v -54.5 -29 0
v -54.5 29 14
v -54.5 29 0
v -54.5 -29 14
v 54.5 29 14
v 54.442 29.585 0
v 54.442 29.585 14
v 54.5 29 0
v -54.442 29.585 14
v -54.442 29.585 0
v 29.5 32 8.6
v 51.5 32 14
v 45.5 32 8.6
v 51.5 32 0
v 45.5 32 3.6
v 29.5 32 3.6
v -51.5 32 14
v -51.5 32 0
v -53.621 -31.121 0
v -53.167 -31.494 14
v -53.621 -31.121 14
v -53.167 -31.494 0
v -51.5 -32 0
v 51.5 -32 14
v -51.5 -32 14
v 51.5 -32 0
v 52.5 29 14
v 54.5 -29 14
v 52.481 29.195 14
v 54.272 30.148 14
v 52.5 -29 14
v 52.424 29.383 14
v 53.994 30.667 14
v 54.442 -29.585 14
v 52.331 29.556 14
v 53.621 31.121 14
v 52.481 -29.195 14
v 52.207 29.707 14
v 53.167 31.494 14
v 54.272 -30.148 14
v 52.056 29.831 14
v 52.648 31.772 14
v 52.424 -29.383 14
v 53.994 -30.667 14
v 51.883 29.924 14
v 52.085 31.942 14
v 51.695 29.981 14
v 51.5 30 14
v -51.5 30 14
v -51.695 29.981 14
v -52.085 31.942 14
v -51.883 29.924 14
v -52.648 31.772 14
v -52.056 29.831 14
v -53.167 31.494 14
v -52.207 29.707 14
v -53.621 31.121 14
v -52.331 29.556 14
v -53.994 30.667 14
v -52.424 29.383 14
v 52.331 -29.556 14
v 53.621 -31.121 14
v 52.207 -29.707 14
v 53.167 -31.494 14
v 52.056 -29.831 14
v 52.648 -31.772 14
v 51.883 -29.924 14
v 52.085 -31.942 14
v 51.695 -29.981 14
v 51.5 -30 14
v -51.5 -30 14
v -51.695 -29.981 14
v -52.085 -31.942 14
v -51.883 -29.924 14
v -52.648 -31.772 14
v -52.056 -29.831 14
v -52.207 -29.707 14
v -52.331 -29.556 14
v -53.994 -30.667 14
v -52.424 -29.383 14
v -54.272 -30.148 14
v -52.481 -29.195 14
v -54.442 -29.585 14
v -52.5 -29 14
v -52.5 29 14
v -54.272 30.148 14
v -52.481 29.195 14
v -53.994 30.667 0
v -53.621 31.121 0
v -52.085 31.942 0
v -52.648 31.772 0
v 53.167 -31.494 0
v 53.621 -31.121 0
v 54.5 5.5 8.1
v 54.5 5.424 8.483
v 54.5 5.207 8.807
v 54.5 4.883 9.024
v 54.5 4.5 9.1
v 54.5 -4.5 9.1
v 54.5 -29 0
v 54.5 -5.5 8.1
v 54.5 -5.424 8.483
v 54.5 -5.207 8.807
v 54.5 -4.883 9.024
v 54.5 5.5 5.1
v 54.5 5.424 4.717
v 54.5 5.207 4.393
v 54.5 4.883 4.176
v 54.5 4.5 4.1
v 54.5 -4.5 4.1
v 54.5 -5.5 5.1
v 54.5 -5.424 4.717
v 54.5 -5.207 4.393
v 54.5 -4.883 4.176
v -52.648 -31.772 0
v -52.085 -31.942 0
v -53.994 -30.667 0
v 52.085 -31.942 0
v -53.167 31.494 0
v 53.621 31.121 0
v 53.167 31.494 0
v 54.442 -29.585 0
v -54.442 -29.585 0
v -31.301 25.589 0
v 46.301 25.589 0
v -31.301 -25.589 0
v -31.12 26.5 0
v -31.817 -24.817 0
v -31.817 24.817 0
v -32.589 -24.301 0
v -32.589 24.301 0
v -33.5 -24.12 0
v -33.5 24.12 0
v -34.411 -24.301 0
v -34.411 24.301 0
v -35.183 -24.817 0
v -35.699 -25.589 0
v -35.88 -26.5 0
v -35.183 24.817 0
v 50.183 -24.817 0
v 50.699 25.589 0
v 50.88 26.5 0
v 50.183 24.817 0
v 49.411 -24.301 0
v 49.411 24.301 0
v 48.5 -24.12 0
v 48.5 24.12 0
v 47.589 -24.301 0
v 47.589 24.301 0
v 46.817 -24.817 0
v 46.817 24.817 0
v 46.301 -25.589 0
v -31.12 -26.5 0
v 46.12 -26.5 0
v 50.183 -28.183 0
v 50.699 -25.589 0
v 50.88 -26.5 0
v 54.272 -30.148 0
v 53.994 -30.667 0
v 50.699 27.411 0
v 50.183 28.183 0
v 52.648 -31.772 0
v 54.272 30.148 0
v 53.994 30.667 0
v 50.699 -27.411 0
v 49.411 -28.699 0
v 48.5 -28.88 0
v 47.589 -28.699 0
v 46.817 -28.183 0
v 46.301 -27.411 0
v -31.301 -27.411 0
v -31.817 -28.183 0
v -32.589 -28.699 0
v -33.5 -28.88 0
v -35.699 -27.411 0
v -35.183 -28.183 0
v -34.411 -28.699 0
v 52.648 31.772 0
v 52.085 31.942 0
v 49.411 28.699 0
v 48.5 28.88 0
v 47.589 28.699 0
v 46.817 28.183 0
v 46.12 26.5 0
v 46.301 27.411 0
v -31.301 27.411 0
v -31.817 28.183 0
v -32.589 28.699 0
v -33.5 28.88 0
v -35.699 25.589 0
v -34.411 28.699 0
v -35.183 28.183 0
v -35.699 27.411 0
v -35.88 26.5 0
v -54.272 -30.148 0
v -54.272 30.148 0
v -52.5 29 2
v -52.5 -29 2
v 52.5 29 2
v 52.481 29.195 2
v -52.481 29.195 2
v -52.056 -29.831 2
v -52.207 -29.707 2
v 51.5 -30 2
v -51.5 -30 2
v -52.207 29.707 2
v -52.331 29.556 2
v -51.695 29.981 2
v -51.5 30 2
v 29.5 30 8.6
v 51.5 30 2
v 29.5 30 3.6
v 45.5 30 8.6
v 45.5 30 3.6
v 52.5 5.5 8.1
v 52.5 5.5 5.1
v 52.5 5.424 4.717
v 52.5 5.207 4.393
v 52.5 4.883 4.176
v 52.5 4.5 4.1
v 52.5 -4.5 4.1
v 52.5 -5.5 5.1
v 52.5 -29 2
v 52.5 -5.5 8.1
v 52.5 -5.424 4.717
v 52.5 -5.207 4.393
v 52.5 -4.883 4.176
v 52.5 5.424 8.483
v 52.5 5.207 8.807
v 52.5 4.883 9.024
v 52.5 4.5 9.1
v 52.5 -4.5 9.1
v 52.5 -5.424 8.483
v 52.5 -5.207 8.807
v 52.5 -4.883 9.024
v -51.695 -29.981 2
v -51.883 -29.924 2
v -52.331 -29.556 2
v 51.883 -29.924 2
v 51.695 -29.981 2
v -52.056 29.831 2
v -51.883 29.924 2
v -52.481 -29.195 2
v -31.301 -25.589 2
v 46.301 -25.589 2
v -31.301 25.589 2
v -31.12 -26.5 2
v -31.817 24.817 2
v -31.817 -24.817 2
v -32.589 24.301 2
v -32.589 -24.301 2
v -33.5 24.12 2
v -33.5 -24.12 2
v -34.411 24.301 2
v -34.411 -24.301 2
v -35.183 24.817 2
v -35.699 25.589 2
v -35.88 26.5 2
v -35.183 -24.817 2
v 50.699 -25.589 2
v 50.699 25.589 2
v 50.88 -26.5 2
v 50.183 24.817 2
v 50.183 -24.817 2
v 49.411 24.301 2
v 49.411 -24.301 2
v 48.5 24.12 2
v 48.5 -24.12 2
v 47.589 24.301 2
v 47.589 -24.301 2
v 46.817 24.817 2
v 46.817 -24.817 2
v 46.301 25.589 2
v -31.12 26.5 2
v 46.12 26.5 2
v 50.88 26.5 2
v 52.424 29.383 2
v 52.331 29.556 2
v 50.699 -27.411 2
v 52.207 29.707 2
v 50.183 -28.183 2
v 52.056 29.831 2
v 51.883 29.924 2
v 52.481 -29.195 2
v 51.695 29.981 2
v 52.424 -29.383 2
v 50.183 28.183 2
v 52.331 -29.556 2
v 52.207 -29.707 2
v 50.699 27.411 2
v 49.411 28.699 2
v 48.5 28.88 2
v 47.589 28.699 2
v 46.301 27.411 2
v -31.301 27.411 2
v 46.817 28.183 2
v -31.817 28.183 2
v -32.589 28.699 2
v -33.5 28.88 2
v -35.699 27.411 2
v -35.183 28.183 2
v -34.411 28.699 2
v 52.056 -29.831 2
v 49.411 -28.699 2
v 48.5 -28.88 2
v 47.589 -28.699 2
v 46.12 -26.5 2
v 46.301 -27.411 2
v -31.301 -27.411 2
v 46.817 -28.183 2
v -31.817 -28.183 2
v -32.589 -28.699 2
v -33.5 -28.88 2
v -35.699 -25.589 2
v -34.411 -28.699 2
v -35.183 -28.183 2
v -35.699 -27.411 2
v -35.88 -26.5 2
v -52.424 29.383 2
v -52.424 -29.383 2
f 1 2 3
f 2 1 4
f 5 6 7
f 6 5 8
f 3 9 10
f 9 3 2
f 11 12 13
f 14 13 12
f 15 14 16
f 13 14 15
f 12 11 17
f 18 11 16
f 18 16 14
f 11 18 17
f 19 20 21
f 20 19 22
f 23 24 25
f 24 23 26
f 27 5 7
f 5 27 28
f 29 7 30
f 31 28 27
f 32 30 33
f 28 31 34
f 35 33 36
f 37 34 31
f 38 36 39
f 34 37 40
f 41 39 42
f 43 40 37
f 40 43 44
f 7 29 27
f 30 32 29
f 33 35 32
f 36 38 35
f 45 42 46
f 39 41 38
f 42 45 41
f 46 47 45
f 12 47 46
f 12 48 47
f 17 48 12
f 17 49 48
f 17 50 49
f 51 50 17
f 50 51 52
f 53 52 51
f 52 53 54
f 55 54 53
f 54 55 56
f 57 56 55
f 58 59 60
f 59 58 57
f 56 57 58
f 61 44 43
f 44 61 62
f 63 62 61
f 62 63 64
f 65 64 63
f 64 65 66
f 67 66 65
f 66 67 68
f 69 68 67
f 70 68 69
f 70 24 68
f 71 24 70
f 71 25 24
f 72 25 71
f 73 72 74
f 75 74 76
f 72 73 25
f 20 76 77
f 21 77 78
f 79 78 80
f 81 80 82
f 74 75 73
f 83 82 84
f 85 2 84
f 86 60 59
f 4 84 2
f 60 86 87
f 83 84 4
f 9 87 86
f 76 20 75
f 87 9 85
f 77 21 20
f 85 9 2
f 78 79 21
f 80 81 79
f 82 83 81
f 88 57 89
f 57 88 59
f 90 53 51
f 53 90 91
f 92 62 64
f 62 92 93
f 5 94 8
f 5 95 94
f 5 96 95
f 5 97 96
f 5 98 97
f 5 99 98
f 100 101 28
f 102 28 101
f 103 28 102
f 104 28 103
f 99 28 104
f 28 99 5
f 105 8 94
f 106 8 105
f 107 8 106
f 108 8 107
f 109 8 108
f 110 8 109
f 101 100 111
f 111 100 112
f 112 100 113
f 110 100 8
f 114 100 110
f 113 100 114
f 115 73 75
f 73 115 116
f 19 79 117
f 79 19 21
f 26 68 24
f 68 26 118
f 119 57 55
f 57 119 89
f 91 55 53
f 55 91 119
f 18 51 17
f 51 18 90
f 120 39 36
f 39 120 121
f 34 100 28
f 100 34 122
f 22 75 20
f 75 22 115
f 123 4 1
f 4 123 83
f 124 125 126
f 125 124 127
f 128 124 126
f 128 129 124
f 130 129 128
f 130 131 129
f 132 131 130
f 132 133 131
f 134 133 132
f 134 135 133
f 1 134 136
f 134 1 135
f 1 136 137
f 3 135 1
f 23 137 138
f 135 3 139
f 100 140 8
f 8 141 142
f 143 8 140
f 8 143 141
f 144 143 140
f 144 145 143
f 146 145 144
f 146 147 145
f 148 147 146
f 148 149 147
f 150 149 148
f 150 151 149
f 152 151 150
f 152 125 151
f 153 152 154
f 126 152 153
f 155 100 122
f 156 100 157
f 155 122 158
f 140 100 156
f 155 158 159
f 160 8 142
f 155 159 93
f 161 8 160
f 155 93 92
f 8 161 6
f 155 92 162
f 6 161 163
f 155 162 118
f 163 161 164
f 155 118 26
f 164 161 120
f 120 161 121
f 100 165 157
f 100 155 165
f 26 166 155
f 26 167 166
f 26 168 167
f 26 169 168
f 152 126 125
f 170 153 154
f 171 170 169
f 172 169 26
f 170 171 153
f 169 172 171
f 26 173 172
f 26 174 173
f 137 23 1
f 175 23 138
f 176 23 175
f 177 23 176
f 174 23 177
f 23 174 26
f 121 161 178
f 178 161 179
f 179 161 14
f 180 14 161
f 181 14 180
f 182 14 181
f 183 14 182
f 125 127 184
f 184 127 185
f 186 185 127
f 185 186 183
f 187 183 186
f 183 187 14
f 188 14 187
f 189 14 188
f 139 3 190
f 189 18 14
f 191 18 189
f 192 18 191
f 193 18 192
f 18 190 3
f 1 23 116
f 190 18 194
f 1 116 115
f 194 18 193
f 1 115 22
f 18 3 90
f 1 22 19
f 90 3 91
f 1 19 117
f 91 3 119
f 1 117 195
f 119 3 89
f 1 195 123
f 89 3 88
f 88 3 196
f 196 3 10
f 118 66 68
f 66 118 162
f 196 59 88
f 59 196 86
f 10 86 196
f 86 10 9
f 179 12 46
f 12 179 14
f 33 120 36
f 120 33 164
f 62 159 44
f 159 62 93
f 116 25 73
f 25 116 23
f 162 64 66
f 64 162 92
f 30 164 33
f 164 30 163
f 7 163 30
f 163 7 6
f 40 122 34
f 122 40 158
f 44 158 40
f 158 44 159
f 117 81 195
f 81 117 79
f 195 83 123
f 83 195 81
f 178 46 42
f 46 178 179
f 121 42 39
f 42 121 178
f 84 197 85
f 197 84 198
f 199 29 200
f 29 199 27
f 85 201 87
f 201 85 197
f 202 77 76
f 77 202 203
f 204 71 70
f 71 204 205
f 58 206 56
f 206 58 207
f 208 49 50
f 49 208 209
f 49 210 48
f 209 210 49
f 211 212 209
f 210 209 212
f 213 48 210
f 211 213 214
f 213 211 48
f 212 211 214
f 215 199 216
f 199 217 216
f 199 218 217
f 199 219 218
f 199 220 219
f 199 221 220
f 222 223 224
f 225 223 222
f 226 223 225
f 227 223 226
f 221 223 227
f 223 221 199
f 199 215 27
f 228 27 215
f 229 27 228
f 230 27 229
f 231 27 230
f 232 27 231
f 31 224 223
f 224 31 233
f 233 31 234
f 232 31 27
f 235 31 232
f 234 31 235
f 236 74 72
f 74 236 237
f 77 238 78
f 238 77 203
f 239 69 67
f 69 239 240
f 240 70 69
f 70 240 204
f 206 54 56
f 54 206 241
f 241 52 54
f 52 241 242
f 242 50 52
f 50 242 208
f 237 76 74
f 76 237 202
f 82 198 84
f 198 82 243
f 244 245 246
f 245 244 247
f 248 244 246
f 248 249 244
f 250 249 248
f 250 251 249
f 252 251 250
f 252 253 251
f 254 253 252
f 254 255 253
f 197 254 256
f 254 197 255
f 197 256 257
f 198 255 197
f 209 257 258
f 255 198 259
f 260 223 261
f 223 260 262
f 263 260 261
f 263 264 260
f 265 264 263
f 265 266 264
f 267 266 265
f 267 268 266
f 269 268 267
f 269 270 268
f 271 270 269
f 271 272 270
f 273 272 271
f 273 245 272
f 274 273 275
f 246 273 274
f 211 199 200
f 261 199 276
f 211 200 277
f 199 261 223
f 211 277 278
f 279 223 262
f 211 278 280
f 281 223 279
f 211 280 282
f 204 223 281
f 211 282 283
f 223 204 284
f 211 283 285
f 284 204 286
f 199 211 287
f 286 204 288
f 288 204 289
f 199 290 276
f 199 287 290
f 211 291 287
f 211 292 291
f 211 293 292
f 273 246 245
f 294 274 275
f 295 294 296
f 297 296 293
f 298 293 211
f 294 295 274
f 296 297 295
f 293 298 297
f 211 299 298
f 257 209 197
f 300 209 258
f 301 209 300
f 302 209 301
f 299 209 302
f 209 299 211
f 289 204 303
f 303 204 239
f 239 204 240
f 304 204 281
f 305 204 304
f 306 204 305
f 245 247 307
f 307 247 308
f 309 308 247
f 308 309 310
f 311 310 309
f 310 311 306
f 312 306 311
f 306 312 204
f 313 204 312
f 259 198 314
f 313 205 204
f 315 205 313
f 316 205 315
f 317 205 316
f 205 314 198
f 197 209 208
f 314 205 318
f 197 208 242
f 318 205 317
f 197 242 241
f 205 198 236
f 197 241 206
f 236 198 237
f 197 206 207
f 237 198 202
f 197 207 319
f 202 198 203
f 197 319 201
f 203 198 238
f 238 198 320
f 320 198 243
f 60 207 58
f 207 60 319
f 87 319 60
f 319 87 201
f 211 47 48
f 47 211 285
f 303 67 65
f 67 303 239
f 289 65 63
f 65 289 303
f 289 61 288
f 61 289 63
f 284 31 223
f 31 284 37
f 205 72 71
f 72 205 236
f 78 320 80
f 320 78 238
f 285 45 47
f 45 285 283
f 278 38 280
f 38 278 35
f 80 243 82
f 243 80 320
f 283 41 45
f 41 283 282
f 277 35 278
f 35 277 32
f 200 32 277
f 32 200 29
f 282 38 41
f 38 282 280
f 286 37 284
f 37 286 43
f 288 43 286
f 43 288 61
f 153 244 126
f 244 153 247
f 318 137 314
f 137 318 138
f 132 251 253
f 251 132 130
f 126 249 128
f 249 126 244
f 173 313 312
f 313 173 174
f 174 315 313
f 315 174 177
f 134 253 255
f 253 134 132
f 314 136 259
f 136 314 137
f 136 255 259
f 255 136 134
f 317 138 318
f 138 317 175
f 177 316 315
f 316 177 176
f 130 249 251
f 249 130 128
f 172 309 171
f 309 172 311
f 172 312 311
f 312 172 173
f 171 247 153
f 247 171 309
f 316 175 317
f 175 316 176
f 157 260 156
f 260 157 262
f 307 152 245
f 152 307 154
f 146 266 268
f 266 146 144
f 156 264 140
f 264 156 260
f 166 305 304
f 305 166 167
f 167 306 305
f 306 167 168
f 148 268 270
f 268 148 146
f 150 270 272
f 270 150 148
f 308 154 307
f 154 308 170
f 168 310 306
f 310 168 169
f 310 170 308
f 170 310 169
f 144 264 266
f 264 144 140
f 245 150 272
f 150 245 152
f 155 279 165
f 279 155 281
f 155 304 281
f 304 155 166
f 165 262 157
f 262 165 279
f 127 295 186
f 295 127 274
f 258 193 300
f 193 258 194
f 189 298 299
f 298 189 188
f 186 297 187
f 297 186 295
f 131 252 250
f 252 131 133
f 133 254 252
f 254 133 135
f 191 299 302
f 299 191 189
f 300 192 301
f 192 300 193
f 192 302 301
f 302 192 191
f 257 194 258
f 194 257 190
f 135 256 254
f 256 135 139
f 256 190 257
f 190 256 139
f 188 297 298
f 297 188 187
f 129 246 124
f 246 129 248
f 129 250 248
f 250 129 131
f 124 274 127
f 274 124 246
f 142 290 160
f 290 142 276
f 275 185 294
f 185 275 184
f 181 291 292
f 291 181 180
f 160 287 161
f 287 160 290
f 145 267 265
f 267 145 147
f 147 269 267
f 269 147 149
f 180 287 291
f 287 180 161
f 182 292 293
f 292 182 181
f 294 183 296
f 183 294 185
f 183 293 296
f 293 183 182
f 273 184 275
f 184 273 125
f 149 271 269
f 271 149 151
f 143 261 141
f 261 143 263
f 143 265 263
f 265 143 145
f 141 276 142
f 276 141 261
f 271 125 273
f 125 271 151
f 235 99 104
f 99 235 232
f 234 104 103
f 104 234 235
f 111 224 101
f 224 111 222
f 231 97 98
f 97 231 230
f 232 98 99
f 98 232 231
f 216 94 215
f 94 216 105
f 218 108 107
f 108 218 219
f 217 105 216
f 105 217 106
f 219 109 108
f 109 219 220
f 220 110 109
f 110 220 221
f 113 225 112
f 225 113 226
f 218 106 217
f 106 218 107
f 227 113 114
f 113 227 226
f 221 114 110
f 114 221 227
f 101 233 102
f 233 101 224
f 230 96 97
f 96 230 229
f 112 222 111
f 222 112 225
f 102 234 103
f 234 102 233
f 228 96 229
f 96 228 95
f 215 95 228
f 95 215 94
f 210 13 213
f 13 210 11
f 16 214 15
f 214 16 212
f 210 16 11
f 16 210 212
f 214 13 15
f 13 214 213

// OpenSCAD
// MacroPad RP2040 Case (Bottom and Sides)
// Companion to macropad_top_cover.scad
// Parametric design for Adafruit MacroPad RP2040 keyboard controller
// Author: Generated for CircuitPython EVM Controller project
// License: MIT

// The bottom case along with the filler layer and cover OpenSCAD models provivided
// wraps the Adafruit MacroPad RP2040 in a tightfitting case. The case has a USB port
// the reset button opening, as well as 4 mounting holes to fasten the PCD to the case.

// NOTE: This Macropad 3d case is the same as the normal case, except for a longer port
// on the top left to accomodate a wider port required to connect a Stemma QT connector
// for a I2C device for development and testing

// =============================================================================
// PARAMETERS
// =============================================================================

// Adafruit Macropad RP2040 PCB parameters
pcb_length = 105;          // RP2040 PCB length (mm)
pcb_width = 60;            // RP2040 PCB width (mm)
pcb_thickness = 1.6;       // Standard PCB thickness (mm)
pcb_clearance = 1;         // Space around PCB (mm)
pcb_height_clearance = 8;  // Space above PCB for components (mm)

// Overall case dimensions (should match top cover)
bottom_thickness = 2;      // Thickness of bottom plate (mm)
wall_thickness = 2;        // Thickness of side walls (mm)
corner_radius = 3;         // Rounded corner radius (mm)
inner_corner_radius = 1;   // Rounded inner corner radius

case_length = pcb_length + (wall_thickness * 2);   // Total length of case (mm)
case_width = pcb_width +  + (wall_thickness * 2);  // Total width of case (mm)
case_height = 14;          // Height of case walls (mm)

// Top cover integration
top_cover_thickness = 3;   // Thickness of top cover (for fit calculation)
top_cover_lip = 1;         // How much top cover overlaps case walls (mm)

// USB port cutout
usb_width = 11;             // Width of USB-C port (mm)
usb_height = 5;            // ** Was 4 - Height of USB-C port (mm)
usb_offset_from_edge = 3;  // Distance from PCB edge to USB center (mm)
usb_position_y = 0;        // Y position along case width (0 = center)
usb_corner_radius = 1;     // Rounded corners for USB hole

// PCB mounting holes keep 2mm for wall in mind
mount_hole_diameter = 4.56;   // Diameter for M3 screws (mm)
mount_hole_positions = [   // [X, Y] positions relative to PCB center
    [-pcb_length/2 + 19, -26.5],   // Bottom left
    [pcb_length/2 - 4, -26.5],   // Bottom right  
    [-pcb_length/2 + 19, 26.5],    // Top left
    [pcb_length/2 - 4, 26.5]     // Top right
];

// Standoffs for PCB mounting
standoff_height = 6;         // Height of PCB standoffs (mm)
standoff_diameter = 5.2;     // Diameter of standoff base (mm)
standoff_hole_diameter = 2.5; // Hole diameter in standoff for screw (mm)

// 3D printing parameters
clearance = 0.2;           // General clearance (mm)
layer_height = 0.2;        // Your 3D printer layer height (mm)

// Catching indent for Cover support lip
cover_lip_indent = [10, 2.5, 2];


// =============================================================================
// MAIN OBJECT
// =============================================================================

difference() {
    union() {
        // Main case body
        case_body();

        // PCB mounting standoffs
        pcb_standoffs();
    }        

    // Remove internal cavity
    internal_cavity();

    // Remove USB port hole
    usb_port_hole();
    
    // Remove Reset port hole
    reset_port_hole();

    // Remove PCB mounting holes
    pcb_mounting_holes();
}

// Optional: Show PCB position for reference (comment out for final print)
// %pcb_reference();

// =============================================================================
// MODULES (Functions)
// =============================================================================

// Create the main case body with walls
module case_body() {
    // Bottom plate
    hull() {
        // Four corner cylinders for rounded rectangle base
        translate([-(case_length/2 - corner_radius), -(case_width/2 - corner_radius), 0])
            cylinder(h = bottom_thickness, r = corner_radius, $fn = 32);
        
        translate([+(case_length/2 - corner_radius), -(case_width/2 - corner_radius), 0])
            cylinder(h = bottom_thickness, r = corner_radius, $fn = 32);
        
        translate([+(case_length/2 - corner_radius), +(case_width/2 - corner_radius), 0])
            cylinder(h = bottom_thickness, r = corner_radius, $fn = 32);
        
        translate([-(case_length/2 - corner_radius), +(case_width/2 - corner_radius), 0])
            cylinder(h = bottom_thickness, r = corner_radius, $fn = 32);
    }
    
    // Side walls
    difference() {
        // Outer wall
        hull() {
            translate([-(case_length/2 - corner_radius), -(case_width/2 - corner_radius), 0])
                cylinder(h = case_height, r = corner_radius, $fn = 32);
            
            translate([+(case_length/2 - corner_radius), -(case_width/2 - corner_radius), 0])
                cylinder(h = case_height, r = corner_radius, $fn = 32);
            
            translate([+(case_length/2 - corner_radius), +(case_width/2 - corner_radius), 0])
                cylinder(h = case_height, r = corner_radius, $fn = 32);
            
            translate([-(case_length/2 - corner_radius), +(case_width/2 - corner_radius), 0])
                cylinder(h = case_height, r = corner_radius, $fn = 32);
        }
        
        // Inner cavity (removed in main difference)
        translate([0, 0, bottom_thickness])
            hull() {
                inner_radius = corner_radius - wall_thickness;
                inner_length = case_length - 2 * wall_thickness;
                inner_width = case_width - 2 * wall_thickness;
                
                translate([-(inner_length/2 - inner_radius), -(inner_width/2 - inner_radius), 0])
                    cylinder(h = case_height, r = inner_radius, $fn = 32);
                
                translate([+(inner_length/2 - inner_radius), -(inner_width/2 - inner_radius), 0])
                    cylinder(h = case_height, r = inner_radius, $fn = 32);
                
                translate([+(inner_length/2 - inner_radius), +(inner_width/2 - inner_radius), 0])
                    cylinder(h = case_height, r = inner_radius, $fn = 32);
                
                translate([-(inner_length/2 - inner_radius), +(inner_width/2 - inner_radius), 0])
                    cylinder(h = case_height, r = inner_radius, $fn = 32);
            }
    }
    
    // Top cover lip/ledge
    translate([0, 0, case_height - top_cover_thickness]) {
        difference() {
            // Outer ledge
            hull() {
                translate([-(case_length/2 - corner_radius), -(case_width/2 - corner_radius), 0])
                    cylinder(h = top_cover_thickness, r = corner_radius, $fn = 32);
                
                translate([+(case_length/2 - corner_radius), -(case_width/2 - corner_radius), 0])
                    cylinder(h = top_cover_thickness, r = corner_radius, $fn = 32);
                
                translate([+(case_length/2 - corner_radius), +(case_width/2 - corner_radius), 0])
                    cylinder(h = top_cover_thickness, r = corner_radius, $fn = 32);
                
                translate([-(case_length/2 - corner_radius), +(case_width/2 - corner_radius), 0])
                    cylinder(h = top_cover_thickness, r = corner_radius, $fn = 32);
            }
            
            // Inner cutout for top cover
            hull() {
                ledge_radius = corner_radius - top_cover_lip;
                ledge_length = case_length - 2 * top_cover_lip;
                ledge_width = case_width - 2 * top_cover_lip;
                
                translate([-(ledge_length/2 - ledge_radius), -(ledge_width/2 - ledge_radius), -0.5])
                    cylinder(h = top_cover_thickness + 1, r = ledge_radius, $fn = 32);
                
                translate([+(ledge_length/2 - ledge_radius), -(ledge_width/2 - ledge_radius), -0.5])
                    cylinder(h = top_cover_thickness + 1, r = ledge_radius, $fn = 32);
                
                translate([+(ledge_length/2 - ledge_radius), +(ledge_width/2 - ledge_radius), -0.5])
                    cylinder(h = top_cover_thickness + 1, r = ledge_radius, $fn = 32);
                
                translate([-(ledge_length/2 - ledge_radius), +(ledge_width/2 - ledge_radius), -0.5])
                    cylinder(h = top_cover_thickness + 1, r = ledge_radius, $fn = 32);
            }
        }
    }
}

// Create internal cavity (removed from main body)
module internal_cavity() {
    translate([0, 0, bottom_thickness]) {
        inner_radius = inner_corner_radius;
        inner_length = case_length - 2 * wall_thickness;
        inner_width = case_width - 2 * wall_thickness;
        
        hull() {
            translate([-(inner_length/2 - inner_radius), -(inner_width/2 - inner_radius), 0])
                cylinder(h = case_height, r = inner_radius, $fn = 32);
            
            translate([+(inner_length/2 - inner_radius), -(inner_width/2 - inner_radius), 0])
                cylinder(h = case_height, r = inner_radius, $fn = 32);
            
            translate([+(inner_length/2 - inner_radius), +(inner_width/2 - inner_radius), 0])
                cylinder(h = case_height, r = inner_radius, $fn = 32);
            
            translate([-(inner_length/2 - inner_radius), +(inner_width/2 - inner_radius), 0])
                cylinder(h = case_height, r = inner_radius, $fn = 32);
        }
    }
}

// Create PCB mounting standoffs
module pcb_standoffs() {
    for (pos = mount_hole_positions) {
        translate([pos[0], pos[1], bottom_thickness]) {
            cylinder(
                h = standoff_height, 
                d = standoff_diameter, 
                $fn = 16
            );
        }
    }
}

// Create USB port hole
module usb_port_hole() {
    // Position USB hole on the side wall
    translate([
        (case_length/2 - usb_offset_from_edge), 
        usb_position_y, 
        bottom_thickness + standoff_height + pcb_thickness + usb_height/2 - 5.5
    ]) {
        rotate([0, 90, 0]) {
            // Rounded rectangle for USB port
            hull() {
                translate([-(usb_height/2 - usb_corner_radius), -(usb_width/2 - usb_corner_radius), 0])
                    cylinder(h = wall_thickness + 2, r = usb_corner_radius, $fn = 16);
                
                translate([+(usb_height/2 - usb_corner_radius), -(usb_width/2 - usb_corner_radius), 0])
                    cylinder(h = wall_thickness + 2, r = usb_corner_radius, $fn = 16);
                
                translate([+(usb_height/2 - usb_corner_radius), +(usb_width/2 - usb_corner_radius), 0])
                    cylinder(h = wall_thickness + 2, r = usb_corner_radius, $fn = 16);
                
                translate([-(usb_height/2 - usb_corner_radius), +(usb_width/2 - usb_corner_radius), 0])
                    cylinder(h = wall_thickness + 2, r = usb_corner_radius, $fn = 16);
            }
        }
    }
}

// Create Reset port hole
module reset_port_hole() {
    // Position Reset hole on the side wall
    translate([
        -usb_position_y + (pcb_length/2 - 23), 
        (case_width/2 + usb_offset_from_edge - 1), 
        bottom_thickness + standoff_height + pcb_thickness + usb_height/2 - 6
    ]) {
        rotate([0, 90, 0]) {
            // Rounded rectangle for Reset port
            hull() {
                translate([-(usb_height/2 - usb_corner_radius), -(usb_width/2 - usb_corner_radius), 0])
                    cylinder(h = wall_thickness + 14, r = usb_corner_radius, $fn = 16);
                
                translate([+(usb_height/2 - usb_corner_radius), -(usb_width/2 - usb_corner_radius), 0])
                    cylinder(h = wall_thickness + 14, r = usb_corner_radius, $fn = 16);
                
                translate([+(usb_height/2 - usb_corner_radius), +(usb_width/2 - usb_corner_radius), 0])
                    cylinder(h = wall_thickness + 14, r = usb_corner_radius, $fn = 16);
                
                translate([-(usb_height/2 - usb_corner_radius), +(usb_width/2 - usb_corner_radius), 0])
                    cylinder(h = wall_thickness + 14, r = usb_corner_radius, $fn = 16);
            }
        }
    }
}

// Create PCB mounting holes
module pcb_mounting_holes() {
    for (pos = mount_hole_positions) {
        translate([pos[0], pos[1], -0.5]) {
            // Through hole for screw
            cylinder(
                h = case_height + 1, 
                d = mount_hole_diameter + clearance, 
                $fn = 16
            );
            
            // Countersink hole in standoff
            translate([0, 0, bottom_thickness]) {
                cylinder(
                    h = standoff_height + 0.5, 
                    d = standoff_hole_diameter + clearance, 
                    $fn = 16
                );
            }
        }
    }
}

// Create small PCB lip to lock cover plate in on the left and right
module cover_left_lip() {
    // Position Reset hole on the side wall
    color ("red") translate([
        usb_position_y, 
        (case_width/2 - 2), 
        bottom_thickness + standoff_height + pcb_thickness + usb_height/2 - 2
    ]) {
        cube(cover_lip_indent, center = true);
    }
}

// Create small PCB lip to lock top plate in on the left and right
module cover_right_lip() {
    // Position Reset hole on the side wall
    color ("red") translate([
        -usb_position_y, 
        -(case_width/2 - 2), 
        bottom_thickness + standoff_height + pcb_thickness + usb_height/2 - 2
    ]) {
        cube(cover_lip_indent, center = true);
    }
}


// Reference module to show PCB position (for design verification)
module pcb_reference() {
    translate([0, 0, bottom_thickness + standoff_height]) {
        // PCB outline
        color("green", 0.3) {
            hull() {
                pcb_corner_radius = 2;
                translate([-(pcb_length/2 - pcb_corner_radius), -(pcb_width/2 - pcb_corner_radius), 0])
                    cylinder(h = pcb_thickness, r = pcb_corner_radius, $fn = 16);
                
                translate([+(pcb_length/2 - pcb_corner_radius), -(pcb_width/2 - pcb_corner_radius), 0])
                    cylinder(h = pcb_thickness, r = pcb_corner_radius, $fn = 16);
                
                translate([+(pcb_length/2 - pcb_corner_radius), +(pcb_width/2 - pcb_corner_radius), 0])
                    cylinder(h = pcb_thickness, r = pcb_corner_radius, $fn = 16);
                
                translate([-(pcb_length/2 - pcb_corner_radius), +(pcb_width/2 - pcb_corner_radius), 0])
                    cylinder(h = pcb_thickness, r = pcb_corner_radius, $fn = 16);
            }
        }
        
        // Component clearance volume
        color("blue", 0.1) {
            translate([0, 0, pcb_thickness]) {
                hull() {
                    pcb_corner_radius = 2;
                    translate([-(pcb_length/2 - pcb_corner_radius), -(pcb_width/2 - pcb_corner_radius), 0])
                        cylinder(h = pcb_height_clearance, r = pcb_corner_radius, $fn = 16);
                    
                    translate([+(pcb_length/2 - pcb_corner_radius), -(pcb_width/2 - pcb_corner_radius), 0])
                        cylinder(h = pcb_height_clearance, r = pcb_corner_radius, $fn = 16);
                    
                    translate([+(pcb_length/2 - pcb_corner_radius), +(pcb_width/2 - pcb_corner_radius), 0])
                        cylinder(h = pcb_height_clearance, r = pcb_corner_radius, $fn = 16);
                    
                    translate([-(pcb_length/2 - pcb_corner_radius), +(pcb_width/2 - pcb_corner_radius), 0])
                        cylinder(h = pcb_height_clearance, r = pcb_corner_radius, $fn = 16);
                }
            }
        }
        
        // Mounting holes
        color("red") {
            for (pos = mount_hole_positions) {
                translate([pos[0], pos[1], 0]) {
                    cylinder(h = pcb_thickness, d = 3.2, $fn = 16);
                }
            }
        }
    }
}
